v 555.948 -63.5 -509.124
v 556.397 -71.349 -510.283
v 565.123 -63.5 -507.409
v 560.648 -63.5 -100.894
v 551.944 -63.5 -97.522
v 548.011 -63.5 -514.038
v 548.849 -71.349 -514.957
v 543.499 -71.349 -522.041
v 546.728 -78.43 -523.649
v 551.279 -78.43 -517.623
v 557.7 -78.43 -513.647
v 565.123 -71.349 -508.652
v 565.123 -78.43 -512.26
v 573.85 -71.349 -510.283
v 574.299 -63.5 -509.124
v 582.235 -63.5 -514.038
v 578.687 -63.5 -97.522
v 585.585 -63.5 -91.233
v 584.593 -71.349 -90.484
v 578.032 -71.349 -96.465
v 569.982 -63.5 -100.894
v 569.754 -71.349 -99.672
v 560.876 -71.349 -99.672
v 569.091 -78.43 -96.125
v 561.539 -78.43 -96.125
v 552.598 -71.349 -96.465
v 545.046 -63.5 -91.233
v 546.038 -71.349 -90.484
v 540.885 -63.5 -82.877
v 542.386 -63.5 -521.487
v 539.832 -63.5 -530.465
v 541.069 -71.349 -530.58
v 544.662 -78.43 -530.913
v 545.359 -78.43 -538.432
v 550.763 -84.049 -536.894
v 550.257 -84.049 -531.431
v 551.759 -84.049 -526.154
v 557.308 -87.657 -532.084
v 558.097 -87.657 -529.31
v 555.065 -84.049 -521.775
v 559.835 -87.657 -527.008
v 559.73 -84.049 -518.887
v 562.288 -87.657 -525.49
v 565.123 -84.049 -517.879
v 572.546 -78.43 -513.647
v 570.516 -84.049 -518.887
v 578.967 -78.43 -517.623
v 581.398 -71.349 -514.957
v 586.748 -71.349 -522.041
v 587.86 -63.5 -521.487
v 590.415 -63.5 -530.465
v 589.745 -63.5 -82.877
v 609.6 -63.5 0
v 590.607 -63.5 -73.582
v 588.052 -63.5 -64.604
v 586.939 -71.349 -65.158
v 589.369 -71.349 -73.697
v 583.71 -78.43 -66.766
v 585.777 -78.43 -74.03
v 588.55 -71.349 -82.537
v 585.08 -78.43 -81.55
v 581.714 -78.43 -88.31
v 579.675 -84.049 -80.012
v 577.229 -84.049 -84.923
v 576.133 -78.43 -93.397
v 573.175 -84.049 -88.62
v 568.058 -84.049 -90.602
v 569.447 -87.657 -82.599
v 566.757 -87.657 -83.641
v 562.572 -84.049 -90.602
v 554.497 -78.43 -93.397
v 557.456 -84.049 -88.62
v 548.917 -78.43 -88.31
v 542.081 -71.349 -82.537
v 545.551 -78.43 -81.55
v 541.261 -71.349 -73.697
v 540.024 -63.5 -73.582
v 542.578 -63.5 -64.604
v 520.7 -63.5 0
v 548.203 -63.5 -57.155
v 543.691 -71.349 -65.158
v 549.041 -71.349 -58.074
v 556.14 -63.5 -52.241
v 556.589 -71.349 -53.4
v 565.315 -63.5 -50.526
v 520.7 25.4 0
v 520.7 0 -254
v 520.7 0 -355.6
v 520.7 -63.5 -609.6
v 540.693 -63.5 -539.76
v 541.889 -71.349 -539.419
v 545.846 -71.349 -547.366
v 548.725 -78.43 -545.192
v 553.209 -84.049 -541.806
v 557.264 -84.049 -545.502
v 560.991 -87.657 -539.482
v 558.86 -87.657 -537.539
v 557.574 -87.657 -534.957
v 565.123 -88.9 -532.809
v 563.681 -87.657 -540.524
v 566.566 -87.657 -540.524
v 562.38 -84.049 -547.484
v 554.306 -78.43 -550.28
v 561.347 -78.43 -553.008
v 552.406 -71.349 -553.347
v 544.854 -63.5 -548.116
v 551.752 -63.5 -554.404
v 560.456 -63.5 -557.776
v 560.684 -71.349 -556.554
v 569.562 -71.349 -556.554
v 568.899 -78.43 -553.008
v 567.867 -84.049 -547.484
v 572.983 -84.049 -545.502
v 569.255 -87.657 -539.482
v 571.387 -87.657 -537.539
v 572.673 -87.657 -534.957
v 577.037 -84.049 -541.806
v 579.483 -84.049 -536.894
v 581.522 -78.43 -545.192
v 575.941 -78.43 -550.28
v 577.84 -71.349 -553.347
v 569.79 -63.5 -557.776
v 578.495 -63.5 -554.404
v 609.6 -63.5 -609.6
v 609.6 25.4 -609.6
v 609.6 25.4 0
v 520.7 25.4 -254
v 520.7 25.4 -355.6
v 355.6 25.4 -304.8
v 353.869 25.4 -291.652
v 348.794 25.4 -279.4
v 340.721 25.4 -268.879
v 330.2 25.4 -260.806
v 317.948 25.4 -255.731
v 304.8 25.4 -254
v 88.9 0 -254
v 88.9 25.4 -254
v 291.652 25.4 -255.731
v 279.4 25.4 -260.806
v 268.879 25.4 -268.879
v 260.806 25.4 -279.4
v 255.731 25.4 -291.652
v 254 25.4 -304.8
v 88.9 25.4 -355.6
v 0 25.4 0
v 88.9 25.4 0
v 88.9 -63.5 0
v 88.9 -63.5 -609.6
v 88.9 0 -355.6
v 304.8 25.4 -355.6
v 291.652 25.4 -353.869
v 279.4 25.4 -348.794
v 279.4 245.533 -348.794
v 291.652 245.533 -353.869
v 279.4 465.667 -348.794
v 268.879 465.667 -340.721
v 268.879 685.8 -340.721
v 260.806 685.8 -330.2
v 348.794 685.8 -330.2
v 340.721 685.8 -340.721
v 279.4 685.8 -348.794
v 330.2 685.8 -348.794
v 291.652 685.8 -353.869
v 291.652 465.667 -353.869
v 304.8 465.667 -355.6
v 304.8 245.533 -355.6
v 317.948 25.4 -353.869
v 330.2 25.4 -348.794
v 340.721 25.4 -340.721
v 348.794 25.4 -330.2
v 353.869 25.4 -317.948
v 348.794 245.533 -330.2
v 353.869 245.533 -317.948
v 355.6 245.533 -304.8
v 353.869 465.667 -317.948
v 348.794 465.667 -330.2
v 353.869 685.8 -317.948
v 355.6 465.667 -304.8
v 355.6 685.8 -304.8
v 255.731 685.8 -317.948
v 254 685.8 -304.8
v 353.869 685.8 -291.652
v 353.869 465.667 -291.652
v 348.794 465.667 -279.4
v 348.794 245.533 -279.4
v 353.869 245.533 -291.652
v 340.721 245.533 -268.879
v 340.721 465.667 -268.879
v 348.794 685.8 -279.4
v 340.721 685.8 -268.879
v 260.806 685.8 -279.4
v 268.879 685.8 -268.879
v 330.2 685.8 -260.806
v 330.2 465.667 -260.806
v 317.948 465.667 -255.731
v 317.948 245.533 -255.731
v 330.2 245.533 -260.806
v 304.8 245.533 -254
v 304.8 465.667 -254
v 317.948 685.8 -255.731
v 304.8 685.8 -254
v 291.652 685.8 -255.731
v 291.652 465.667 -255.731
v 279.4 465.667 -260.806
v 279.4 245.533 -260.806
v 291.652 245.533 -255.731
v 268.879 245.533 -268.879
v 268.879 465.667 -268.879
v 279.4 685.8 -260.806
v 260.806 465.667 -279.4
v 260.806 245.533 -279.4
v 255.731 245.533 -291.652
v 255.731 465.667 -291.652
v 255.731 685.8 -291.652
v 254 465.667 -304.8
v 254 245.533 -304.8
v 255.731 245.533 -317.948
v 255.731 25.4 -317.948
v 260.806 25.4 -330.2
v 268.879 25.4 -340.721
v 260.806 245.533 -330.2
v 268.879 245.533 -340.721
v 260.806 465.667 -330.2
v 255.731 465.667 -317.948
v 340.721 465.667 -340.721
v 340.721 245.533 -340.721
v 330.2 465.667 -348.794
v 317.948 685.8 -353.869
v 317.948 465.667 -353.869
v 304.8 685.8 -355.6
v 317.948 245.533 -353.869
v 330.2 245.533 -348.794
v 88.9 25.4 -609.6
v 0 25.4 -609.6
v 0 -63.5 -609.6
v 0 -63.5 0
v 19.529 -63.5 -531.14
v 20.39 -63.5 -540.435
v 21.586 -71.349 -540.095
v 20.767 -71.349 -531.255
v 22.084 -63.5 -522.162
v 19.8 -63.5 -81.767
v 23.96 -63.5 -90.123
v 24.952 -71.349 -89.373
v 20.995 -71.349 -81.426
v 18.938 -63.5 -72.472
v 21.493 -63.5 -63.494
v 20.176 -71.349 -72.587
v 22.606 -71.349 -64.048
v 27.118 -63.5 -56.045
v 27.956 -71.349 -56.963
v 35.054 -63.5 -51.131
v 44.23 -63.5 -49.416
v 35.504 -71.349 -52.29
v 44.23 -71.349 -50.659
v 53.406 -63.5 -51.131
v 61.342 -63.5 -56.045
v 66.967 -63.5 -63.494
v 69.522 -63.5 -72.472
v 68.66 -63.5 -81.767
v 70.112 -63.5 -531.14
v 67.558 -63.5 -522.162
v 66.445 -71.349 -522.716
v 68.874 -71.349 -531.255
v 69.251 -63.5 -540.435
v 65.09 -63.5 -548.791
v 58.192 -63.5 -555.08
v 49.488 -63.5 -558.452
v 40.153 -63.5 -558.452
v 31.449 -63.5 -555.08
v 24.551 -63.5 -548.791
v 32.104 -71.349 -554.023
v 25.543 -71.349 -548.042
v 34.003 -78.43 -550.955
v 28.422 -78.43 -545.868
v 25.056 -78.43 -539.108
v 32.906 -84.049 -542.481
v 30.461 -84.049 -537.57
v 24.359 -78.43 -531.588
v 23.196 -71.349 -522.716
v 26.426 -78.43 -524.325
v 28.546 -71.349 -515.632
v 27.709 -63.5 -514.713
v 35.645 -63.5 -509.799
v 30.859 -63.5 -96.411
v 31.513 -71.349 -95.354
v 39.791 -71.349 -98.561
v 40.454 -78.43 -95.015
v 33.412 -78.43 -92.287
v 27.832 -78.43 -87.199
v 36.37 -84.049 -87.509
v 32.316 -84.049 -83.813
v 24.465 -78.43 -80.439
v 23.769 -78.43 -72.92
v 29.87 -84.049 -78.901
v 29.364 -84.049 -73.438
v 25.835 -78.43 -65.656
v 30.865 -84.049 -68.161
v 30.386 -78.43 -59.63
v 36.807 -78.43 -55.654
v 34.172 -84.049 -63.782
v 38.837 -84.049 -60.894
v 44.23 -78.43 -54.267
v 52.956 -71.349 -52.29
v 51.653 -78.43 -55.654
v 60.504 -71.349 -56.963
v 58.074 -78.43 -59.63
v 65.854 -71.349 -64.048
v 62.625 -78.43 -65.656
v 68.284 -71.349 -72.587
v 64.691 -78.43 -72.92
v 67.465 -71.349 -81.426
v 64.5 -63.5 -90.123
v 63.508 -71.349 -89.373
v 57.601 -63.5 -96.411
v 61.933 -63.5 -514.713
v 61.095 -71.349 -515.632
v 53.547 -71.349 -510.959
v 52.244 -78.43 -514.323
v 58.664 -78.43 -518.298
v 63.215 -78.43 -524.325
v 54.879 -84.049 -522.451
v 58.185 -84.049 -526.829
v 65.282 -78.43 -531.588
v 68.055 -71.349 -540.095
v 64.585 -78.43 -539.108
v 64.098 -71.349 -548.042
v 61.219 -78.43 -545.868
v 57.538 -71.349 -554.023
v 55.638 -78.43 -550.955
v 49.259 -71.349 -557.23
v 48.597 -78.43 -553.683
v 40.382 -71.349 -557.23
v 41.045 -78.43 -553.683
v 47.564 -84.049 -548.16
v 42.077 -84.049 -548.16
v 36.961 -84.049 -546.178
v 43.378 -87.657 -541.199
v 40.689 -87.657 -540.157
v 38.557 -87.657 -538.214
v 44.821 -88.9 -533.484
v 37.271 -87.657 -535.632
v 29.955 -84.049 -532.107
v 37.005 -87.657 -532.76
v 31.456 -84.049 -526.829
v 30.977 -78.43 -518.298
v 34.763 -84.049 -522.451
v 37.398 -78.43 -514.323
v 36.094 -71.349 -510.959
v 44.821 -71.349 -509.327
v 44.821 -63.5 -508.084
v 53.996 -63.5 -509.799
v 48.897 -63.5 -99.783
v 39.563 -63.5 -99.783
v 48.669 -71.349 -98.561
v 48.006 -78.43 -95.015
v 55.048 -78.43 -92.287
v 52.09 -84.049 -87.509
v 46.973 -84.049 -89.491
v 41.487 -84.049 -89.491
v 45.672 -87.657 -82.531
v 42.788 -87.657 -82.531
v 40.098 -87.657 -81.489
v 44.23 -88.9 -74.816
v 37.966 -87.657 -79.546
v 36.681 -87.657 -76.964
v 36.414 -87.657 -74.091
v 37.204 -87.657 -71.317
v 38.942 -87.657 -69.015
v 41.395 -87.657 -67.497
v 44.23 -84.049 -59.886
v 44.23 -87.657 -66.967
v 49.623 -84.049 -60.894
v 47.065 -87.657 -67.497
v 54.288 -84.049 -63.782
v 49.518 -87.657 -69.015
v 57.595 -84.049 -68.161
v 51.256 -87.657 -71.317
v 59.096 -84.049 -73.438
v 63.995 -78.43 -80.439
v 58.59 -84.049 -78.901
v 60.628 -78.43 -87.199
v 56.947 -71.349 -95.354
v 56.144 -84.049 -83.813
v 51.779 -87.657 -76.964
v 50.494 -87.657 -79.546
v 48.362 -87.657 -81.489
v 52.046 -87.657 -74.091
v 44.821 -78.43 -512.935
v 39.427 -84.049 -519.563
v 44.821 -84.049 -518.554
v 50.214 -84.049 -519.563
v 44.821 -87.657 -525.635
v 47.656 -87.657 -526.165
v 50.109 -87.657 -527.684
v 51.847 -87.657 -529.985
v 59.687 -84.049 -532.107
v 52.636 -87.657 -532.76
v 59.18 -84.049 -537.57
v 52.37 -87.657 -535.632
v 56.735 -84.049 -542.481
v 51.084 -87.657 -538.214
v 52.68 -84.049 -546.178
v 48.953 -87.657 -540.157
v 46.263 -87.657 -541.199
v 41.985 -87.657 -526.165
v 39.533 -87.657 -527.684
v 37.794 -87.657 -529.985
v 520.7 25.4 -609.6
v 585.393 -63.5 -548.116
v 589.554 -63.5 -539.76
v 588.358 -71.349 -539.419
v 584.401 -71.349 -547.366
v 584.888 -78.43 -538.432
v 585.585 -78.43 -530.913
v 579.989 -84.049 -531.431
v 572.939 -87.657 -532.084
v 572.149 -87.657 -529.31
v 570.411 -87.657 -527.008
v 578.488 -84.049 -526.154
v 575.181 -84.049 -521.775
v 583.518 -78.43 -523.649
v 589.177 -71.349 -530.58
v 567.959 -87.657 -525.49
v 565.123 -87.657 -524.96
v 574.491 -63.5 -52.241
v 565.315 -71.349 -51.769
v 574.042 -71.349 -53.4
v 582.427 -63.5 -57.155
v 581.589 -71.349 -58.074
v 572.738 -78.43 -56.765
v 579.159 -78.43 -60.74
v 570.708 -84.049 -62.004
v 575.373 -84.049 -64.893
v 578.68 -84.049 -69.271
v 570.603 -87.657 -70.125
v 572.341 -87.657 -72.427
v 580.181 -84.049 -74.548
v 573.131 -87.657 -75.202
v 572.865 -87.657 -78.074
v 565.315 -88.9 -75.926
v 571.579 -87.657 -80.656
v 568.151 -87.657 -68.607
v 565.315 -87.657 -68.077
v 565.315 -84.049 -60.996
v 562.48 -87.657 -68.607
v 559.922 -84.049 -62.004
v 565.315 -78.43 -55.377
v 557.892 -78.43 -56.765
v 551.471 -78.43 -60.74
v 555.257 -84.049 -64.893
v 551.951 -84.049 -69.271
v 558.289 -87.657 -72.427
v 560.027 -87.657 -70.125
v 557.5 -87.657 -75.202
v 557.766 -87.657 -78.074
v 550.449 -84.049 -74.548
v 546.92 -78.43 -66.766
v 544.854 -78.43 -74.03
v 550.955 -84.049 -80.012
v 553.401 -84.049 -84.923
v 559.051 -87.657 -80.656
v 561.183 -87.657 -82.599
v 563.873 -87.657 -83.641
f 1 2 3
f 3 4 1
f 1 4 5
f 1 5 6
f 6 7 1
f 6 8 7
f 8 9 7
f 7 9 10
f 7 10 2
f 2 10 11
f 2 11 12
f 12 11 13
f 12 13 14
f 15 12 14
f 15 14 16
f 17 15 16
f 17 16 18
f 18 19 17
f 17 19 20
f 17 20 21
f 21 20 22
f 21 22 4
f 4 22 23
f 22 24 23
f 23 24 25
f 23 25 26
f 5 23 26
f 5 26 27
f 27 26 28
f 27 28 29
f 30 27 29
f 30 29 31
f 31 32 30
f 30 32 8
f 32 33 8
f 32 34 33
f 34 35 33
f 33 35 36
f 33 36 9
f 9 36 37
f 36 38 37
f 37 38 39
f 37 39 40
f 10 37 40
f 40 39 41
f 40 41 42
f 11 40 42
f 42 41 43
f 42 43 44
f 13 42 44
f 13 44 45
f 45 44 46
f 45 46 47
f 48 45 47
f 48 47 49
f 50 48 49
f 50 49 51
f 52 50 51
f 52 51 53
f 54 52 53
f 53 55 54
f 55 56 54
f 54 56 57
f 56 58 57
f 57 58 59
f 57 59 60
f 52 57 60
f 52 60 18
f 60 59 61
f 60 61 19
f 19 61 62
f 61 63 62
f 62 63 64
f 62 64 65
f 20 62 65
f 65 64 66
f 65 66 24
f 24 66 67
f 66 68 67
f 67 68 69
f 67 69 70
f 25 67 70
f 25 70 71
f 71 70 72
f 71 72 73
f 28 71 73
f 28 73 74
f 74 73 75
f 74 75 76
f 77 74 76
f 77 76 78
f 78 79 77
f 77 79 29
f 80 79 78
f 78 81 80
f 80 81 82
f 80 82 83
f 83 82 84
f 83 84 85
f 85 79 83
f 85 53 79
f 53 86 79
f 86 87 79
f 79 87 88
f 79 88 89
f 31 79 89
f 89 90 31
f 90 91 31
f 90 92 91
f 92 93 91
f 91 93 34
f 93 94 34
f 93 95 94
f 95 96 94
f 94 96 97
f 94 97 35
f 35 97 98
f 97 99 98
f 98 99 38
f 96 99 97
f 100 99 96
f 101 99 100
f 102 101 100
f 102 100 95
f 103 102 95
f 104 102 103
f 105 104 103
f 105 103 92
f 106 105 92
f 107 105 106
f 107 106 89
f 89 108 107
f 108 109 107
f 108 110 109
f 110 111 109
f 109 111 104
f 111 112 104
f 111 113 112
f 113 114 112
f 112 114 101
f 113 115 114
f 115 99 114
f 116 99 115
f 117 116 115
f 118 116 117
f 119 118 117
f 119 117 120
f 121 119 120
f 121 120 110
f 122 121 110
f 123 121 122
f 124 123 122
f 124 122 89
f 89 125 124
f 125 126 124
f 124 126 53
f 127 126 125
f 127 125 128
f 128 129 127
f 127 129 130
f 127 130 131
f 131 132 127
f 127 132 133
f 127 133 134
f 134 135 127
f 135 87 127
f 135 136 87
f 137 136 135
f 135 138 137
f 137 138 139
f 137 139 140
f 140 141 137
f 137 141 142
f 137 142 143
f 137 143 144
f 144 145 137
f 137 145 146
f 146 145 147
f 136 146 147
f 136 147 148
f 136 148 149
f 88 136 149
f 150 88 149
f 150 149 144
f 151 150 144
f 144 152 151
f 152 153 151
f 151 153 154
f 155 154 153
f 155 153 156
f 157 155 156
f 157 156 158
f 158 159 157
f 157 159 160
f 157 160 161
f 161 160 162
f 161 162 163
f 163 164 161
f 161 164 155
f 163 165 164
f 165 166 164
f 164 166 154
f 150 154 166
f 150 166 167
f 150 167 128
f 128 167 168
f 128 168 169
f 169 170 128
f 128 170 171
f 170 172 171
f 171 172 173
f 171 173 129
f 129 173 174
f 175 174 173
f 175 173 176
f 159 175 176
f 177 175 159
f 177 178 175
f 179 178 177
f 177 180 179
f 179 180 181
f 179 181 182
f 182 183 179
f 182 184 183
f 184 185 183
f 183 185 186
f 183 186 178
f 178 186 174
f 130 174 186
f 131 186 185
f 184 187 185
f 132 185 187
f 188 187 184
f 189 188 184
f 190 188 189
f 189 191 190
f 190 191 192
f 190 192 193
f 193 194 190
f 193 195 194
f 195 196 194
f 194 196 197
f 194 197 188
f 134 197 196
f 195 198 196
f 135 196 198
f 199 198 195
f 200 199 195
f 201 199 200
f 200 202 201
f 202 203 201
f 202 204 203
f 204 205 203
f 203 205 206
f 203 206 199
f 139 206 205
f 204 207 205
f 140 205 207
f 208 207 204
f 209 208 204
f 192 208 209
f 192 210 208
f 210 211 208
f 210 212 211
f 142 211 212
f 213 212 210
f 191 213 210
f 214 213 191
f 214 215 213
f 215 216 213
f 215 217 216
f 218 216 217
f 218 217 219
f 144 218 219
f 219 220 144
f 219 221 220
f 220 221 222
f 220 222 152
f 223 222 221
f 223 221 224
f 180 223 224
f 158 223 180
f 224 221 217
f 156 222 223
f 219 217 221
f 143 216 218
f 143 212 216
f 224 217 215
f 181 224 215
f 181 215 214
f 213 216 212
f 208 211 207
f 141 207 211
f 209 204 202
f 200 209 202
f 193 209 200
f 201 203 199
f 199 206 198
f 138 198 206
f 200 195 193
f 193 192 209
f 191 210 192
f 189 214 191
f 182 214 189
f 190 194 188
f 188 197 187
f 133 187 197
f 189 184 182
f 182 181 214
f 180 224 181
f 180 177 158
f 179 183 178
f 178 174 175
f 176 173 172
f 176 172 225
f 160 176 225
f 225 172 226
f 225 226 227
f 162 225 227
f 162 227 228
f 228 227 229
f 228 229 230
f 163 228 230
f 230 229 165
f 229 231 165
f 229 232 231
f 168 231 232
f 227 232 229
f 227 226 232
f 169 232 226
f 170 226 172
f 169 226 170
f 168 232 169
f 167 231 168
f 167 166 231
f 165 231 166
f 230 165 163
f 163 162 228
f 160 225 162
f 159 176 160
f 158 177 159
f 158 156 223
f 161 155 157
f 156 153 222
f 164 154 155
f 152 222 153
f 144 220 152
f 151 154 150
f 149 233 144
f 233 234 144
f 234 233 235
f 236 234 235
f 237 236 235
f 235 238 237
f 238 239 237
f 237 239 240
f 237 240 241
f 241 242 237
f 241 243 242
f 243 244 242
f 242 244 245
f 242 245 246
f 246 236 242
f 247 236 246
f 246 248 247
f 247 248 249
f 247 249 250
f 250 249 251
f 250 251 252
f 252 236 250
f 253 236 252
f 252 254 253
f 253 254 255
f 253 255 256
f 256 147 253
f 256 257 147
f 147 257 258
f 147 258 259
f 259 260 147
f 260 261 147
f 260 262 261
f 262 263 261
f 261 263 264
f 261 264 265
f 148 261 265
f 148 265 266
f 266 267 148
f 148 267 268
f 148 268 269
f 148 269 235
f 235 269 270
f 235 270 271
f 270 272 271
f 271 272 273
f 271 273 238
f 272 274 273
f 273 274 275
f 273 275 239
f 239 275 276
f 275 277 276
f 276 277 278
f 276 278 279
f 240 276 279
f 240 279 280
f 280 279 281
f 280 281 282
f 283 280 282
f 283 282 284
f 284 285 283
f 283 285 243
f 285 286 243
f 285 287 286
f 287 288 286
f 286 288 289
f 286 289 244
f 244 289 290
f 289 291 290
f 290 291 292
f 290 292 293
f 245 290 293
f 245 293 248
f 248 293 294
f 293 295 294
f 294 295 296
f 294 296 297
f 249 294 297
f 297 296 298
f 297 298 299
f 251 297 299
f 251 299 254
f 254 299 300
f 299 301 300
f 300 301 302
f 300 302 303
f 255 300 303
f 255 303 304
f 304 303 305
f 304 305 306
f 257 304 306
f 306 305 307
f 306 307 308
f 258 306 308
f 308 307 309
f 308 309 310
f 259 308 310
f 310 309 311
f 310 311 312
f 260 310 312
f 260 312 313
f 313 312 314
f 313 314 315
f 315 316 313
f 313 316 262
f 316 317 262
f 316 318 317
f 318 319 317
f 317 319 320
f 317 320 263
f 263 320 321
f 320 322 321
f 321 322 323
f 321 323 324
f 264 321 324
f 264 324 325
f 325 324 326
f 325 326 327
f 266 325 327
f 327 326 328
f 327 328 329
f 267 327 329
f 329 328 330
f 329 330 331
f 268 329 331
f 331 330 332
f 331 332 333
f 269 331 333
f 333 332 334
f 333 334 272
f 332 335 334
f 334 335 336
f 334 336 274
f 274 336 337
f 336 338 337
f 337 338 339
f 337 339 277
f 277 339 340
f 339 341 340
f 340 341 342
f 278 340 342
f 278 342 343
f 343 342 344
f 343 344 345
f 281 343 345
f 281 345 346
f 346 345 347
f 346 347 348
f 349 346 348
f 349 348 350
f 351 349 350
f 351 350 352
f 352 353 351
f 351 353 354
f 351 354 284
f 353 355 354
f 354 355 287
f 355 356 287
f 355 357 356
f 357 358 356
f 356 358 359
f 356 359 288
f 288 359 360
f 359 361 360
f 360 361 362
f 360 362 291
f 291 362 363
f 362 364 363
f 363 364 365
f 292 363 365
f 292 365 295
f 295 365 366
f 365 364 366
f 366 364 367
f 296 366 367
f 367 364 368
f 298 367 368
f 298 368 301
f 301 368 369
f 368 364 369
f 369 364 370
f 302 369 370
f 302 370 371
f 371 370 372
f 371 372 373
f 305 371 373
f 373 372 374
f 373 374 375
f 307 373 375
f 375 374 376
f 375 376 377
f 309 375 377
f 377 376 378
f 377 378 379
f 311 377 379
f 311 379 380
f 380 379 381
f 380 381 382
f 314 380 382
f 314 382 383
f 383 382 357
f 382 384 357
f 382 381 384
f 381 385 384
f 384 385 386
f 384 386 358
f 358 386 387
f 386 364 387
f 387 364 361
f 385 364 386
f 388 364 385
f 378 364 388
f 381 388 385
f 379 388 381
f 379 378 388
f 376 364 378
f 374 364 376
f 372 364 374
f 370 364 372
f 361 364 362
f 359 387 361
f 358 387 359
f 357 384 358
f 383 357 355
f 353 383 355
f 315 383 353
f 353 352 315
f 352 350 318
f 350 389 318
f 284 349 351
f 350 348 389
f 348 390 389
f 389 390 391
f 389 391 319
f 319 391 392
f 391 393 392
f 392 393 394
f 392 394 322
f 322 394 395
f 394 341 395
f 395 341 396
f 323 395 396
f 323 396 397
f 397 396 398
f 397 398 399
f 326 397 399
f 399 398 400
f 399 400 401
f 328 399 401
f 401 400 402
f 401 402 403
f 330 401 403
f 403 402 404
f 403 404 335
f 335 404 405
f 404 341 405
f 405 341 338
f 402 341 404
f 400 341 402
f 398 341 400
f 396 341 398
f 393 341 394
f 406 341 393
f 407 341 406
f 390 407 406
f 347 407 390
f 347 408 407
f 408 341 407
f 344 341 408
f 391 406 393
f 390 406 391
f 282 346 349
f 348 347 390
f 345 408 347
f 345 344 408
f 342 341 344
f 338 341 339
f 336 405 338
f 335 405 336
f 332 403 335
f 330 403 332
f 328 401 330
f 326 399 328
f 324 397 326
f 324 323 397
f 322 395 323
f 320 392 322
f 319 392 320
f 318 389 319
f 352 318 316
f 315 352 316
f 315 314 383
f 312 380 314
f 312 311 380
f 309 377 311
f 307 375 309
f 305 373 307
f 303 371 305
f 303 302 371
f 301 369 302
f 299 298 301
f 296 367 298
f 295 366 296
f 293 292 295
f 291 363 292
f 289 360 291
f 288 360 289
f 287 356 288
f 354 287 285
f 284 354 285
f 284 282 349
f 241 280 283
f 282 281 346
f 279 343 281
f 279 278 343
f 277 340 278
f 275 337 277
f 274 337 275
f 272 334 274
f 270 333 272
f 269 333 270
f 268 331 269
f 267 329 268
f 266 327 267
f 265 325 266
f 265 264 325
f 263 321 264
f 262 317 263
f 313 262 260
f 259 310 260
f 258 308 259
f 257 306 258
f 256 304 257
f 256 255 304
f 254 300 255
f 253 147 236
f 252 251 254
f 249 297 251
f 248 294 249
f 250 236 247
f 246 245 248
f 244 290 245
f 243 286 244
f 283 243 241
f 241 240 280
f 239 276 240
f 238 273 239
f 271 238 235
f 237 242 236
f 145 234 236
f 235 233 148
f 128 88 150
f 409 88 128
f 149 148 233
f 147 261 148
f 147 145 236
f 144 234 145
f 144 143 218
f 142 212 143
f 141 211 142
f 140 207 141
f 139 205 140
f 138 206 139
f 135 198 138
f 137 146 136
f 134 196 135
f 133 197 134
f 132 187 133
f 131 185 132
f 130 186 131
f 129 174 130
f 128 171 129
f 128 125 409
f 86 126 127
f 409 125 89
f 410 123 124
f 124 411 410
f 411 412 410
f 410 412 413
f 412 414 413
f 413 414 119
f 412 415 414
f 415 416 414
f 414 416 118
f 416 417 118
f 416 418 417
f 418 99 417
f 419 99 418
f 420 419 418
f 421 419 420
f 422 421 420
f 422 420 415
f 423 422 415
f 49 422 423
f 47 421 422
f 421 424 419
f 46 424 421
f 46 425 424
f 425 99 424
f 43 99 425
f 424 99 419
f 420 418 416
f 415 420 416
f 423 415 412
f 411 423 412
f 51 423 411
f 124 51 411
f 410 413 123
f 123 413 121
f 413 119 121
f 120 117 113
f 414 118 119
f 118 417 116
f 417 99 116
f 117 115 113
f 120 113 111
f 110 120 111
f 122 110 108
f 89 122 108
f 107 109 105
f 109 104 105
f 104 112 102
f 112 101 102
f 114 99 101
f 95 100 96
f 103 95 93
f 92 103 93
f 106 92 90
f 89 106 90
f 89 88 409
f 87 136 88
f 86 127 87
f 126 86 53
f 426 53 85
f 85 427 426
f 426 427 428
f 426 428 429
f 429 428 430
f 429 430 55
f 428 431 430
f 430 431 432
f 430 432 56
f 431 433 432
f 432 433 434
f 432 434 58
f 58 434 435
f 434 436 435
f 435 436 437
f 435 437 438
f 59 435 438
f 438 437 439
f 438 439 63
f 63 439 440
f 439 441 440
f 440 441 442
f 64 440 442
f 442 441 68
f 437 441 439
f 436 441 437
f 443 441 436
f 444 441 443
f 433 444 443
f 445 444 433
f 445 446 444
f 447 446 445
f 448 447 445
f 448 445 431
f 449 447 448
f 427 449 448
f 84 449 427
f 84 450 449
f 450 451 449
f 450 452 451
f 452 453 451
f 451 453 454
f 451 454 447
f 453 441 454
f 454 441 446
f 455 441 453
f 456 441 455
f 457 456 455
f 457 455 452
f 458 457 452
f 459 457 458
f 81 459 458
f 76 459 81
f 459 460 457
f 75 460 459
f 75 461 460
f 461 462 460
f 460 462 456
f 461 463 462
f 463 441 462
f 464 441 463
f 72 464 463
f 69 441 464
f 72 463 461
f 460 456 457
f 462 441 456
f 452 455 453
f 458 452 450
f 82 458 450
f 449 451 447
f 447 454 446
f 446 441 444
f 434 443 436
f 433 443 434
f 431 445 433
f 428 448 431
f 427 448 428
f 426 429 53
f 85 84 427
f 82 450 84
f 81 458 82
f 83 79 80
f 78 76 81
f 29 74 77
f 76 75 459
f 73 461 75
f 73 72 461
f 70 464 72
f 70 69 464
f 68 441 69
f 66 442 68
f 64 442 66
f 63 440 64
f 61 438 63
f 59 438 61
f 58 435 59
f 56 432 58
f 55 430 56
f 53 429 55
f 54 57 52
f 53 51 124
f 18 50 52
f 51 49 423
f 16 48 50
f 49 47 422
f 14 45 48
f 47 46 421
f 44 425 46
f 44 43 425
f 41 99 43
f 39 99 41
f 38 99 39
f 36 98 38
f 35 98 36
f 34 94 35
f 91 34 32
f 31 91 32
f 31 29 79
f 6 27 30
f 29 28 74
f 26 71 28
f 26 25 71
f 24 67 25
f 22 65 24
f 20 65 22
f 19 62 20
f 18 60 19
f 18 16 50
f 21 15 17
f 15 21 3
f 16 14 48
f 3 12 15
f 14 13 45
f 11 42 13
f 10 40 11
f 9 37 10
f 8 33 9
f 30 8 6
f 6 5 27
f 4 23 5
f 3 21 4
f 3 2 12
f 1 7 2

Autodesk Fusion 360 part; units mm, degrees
sketch "Sketch1" plane through (0, 0, 0) normal (0, 1, 0) x (1, 0, 0)
  line L0 (609.6, 0) -> (609.6, 609.6)
  line L1 (0, 609.6) -> (0, 0)
  line L2 (0, 0) -> (88.9, 0)
  line L3 (88.9, 609.6) -> (0, 609.6)
  line L4 (0, 609.6) -> (0, 0)
  line L5 (609.6, 609.6) -> (520.7, 609.6)
  line L6 (520.7, -460.804) -> (609.6, -460.804)
  line L7 (609.6, -460.804) -> (609.6, 609.6)
  line L8 (609.6, 304.8) -> (609.6, 355.6)
  line L9 (520.7, 355.6) -> (88.9, 355.6)
  line L10 (0, 355.6) -> (0, 304.8)
  line L11 (609.6, 304.8) -> (609.6, 254)
  line L12 (520.7, 254) -> (88.9, 254)
  line L13 (0, 254) -> (0, 304.8)
  line L14 (88.9, 0) -> (88.9, 254)
  line L15 (88.9, 355.6) -> (88.9, 609.6)
  line L16 (520.7, 609.6) -> (520.7, 355.6)
  line L17 (520.7, 254) -> (520.7, 0)
  line L18 (0, 0) -> (88.9, 0)
  line L19 (520.7, 0) -> (609.6, 0)
  line L20 (609.6, 609.6) -> (520.7, 609.6)
  line L21 (88.9, 609.6) -> (0, 609.6)
  dimension "d1" = 609.6
  dimension "d2" = 609.6
  dimension "d3" = 88.9
  dimension "d4" = 88.9
  dimension "d5" = 50.8
  dimension "d6" = 50.8
extrude "Extrude1" add sketch "Sketch1" along normal blind 25.4
sketch "Sketch2" plane through (0, 0, 0) normal (0, -1, 0) x (1, 0, 0)
  line L0 (609.6, -609.6) -> (609.6, 0)
  line L1 (609.6, 0) -> (520.7, 0)
  line L2 (520.7, 0) -> (520.7, -254)
  line L3 (520.7, -254) -> (88.9, -254)
  line L4 (88.9, -254) -> (88.9, 0)
  line L5 (88.9, 0) -> (0, 0)
  line L6 (0, 0) -> (0, -609.6)
  line L7 (0, -609.6) -> (88.9, -609.6)
  line L8 (88.9, -609.6) -> (88.9, -355.6)
  line L9 (88.9, -355.6) -> (520.7, -355.6)
  line L10 (520.7, -355.6) -> (520.7, -609.6)
  line L11 (520.7, -609.6) -> (609.6, -609.6)
  line L12 (0, 0) -> (88.9, 0)
  line L13 (88.9, 0) -> (88.9, -609.6)
  line L14 (88.9, -609.6) -> (0, -609.6)
  line L15 (0, -609.6) -> (0, 0)
  line L16 (520.7, 0) -> (609.6, 0)
  line L17 (609.6, 0) -> (609.6, -609.6)
  line L18 (609.6, -609.6) -> (520.7, -609.6)
  line L19 (520.7, -609.6) -> (520.7, 0)
extrude "Extrude2" add sketch "Sketch2" along normal blind 63.5 contours L0 L1 L2 L10 L11 L16 L17 L18 L19 | L4 L5 L6 L7 L8 L12 L13 L14 L15
sketch "Sketch3" plane through (0, 25.4, 0) normal (0, 1, 0) x (-1, 0, 0)
  line L0 (-609.6, 0) -> (-609.6, -609.6)
  line L1 (-609.6, -609.6) -> (-520.7, -609.6)
  line L2 (-520.7, -609.6) -> (-520.7, -355.6)
  line L3 (-520.7, -355.6) -> (-88.9, -355.6)
  line L4 (-88.9, -355.6) -> (-88.9, -609.6)
  line L5 (-88.9, -609.6) -> (0, -609.6)
  line L6 (0, -609.6) -> (0, 0)
  line L7 (0, 0) -> (-88.9, 0)
  line L8 (-88.9, 0) -> (-88.9, -254)
  line L9 (-88.9, -254) -> (-520.7, -254)
  line L10 (-520.7, -254) -> (-520.7, 0)
  line L11 (-520.7, 0) -> (-609.6, 0)
  circle A0 centre (-304.8, -304.8) radius 50.8
extrude "Extrude3" add sketch "Sketch3" along normal blind 762 contours A0
extrude "Extrude4" cut 1 faces at (289.3545, 787.4, -299.9767) along direction (0, -1, 0) blind 101.6
sketch "Sketch4" plane through (0, -63.5, 0) normal (0, -1, 0) x (1, 0, 0)
  line L0 (0, -609.6) -> (88.9, -609.6)
  line L1 (88.9, -609.6) -> (88.9, 0)
  line L2 (88.9, 0) -> (0, 0)
  line L3 (0, 0) -> (0, -609.6)
  line L4 (44.45, 0) -> (44.45, -609.6)
  line L5 (44.45, 0) -> (44.45, -11.9009)
  line L6 (44.45, 0) -> (44.45, -76.2)
  line L7 (44.45, -609.6) -> (44.45, -533.4)
  dimension "d15" = 76.2
  dimension "d16" = 76.2
sphere "SpherePrimitive1" add diameter 50.8 placed x (1, 0, 0) y (0, 0, 1) z (0, -1, 0) at (44.23, -63.5, -74.8157)
sphere "SpherePrimitive2" add diameter 50.8 placed x (1, 0, 0) y (0, 0, 1) z (0, -1, 0) at (44.8206, -63.5, -533.484)
sketch "Sketch7" plane through (0, -63.5, 0) normal (0, -1, 0) x (1, 0, 0)
  line L0 (520.7, -609.6) -> (609.6, -609.6)
  line L1 (609.6, -609.6) -> (609.6, 0)
  line L2 (609.6, 0) -> (520.7, 0)
  line L3 (520.7, 0) -> (520.7, -609.6)
  line L4 (565.15, 0) -> (565.15, -609.6)
  line L5 (565.15, 0) -> (565.15, -76.2)
  line L6 (565.15, -609.6) -> (565.15, -533.4)
  dimension "d19" = 76.2
  dimension "d20" = 76.2
sphere "SpherePrimitive3" add diameter 50.8 placed x (1, 0, 0) y (0, 0, 1) z (0, -1, 0) at (565.3152, -63.5, -75.9261)
sphere "SpherePrimitive4" add diameter 50.8 placed x (1, 0, 0) y (0, 0, 1) z (0, -1, 0) at (565.1233, -63.5, -532.8086)
